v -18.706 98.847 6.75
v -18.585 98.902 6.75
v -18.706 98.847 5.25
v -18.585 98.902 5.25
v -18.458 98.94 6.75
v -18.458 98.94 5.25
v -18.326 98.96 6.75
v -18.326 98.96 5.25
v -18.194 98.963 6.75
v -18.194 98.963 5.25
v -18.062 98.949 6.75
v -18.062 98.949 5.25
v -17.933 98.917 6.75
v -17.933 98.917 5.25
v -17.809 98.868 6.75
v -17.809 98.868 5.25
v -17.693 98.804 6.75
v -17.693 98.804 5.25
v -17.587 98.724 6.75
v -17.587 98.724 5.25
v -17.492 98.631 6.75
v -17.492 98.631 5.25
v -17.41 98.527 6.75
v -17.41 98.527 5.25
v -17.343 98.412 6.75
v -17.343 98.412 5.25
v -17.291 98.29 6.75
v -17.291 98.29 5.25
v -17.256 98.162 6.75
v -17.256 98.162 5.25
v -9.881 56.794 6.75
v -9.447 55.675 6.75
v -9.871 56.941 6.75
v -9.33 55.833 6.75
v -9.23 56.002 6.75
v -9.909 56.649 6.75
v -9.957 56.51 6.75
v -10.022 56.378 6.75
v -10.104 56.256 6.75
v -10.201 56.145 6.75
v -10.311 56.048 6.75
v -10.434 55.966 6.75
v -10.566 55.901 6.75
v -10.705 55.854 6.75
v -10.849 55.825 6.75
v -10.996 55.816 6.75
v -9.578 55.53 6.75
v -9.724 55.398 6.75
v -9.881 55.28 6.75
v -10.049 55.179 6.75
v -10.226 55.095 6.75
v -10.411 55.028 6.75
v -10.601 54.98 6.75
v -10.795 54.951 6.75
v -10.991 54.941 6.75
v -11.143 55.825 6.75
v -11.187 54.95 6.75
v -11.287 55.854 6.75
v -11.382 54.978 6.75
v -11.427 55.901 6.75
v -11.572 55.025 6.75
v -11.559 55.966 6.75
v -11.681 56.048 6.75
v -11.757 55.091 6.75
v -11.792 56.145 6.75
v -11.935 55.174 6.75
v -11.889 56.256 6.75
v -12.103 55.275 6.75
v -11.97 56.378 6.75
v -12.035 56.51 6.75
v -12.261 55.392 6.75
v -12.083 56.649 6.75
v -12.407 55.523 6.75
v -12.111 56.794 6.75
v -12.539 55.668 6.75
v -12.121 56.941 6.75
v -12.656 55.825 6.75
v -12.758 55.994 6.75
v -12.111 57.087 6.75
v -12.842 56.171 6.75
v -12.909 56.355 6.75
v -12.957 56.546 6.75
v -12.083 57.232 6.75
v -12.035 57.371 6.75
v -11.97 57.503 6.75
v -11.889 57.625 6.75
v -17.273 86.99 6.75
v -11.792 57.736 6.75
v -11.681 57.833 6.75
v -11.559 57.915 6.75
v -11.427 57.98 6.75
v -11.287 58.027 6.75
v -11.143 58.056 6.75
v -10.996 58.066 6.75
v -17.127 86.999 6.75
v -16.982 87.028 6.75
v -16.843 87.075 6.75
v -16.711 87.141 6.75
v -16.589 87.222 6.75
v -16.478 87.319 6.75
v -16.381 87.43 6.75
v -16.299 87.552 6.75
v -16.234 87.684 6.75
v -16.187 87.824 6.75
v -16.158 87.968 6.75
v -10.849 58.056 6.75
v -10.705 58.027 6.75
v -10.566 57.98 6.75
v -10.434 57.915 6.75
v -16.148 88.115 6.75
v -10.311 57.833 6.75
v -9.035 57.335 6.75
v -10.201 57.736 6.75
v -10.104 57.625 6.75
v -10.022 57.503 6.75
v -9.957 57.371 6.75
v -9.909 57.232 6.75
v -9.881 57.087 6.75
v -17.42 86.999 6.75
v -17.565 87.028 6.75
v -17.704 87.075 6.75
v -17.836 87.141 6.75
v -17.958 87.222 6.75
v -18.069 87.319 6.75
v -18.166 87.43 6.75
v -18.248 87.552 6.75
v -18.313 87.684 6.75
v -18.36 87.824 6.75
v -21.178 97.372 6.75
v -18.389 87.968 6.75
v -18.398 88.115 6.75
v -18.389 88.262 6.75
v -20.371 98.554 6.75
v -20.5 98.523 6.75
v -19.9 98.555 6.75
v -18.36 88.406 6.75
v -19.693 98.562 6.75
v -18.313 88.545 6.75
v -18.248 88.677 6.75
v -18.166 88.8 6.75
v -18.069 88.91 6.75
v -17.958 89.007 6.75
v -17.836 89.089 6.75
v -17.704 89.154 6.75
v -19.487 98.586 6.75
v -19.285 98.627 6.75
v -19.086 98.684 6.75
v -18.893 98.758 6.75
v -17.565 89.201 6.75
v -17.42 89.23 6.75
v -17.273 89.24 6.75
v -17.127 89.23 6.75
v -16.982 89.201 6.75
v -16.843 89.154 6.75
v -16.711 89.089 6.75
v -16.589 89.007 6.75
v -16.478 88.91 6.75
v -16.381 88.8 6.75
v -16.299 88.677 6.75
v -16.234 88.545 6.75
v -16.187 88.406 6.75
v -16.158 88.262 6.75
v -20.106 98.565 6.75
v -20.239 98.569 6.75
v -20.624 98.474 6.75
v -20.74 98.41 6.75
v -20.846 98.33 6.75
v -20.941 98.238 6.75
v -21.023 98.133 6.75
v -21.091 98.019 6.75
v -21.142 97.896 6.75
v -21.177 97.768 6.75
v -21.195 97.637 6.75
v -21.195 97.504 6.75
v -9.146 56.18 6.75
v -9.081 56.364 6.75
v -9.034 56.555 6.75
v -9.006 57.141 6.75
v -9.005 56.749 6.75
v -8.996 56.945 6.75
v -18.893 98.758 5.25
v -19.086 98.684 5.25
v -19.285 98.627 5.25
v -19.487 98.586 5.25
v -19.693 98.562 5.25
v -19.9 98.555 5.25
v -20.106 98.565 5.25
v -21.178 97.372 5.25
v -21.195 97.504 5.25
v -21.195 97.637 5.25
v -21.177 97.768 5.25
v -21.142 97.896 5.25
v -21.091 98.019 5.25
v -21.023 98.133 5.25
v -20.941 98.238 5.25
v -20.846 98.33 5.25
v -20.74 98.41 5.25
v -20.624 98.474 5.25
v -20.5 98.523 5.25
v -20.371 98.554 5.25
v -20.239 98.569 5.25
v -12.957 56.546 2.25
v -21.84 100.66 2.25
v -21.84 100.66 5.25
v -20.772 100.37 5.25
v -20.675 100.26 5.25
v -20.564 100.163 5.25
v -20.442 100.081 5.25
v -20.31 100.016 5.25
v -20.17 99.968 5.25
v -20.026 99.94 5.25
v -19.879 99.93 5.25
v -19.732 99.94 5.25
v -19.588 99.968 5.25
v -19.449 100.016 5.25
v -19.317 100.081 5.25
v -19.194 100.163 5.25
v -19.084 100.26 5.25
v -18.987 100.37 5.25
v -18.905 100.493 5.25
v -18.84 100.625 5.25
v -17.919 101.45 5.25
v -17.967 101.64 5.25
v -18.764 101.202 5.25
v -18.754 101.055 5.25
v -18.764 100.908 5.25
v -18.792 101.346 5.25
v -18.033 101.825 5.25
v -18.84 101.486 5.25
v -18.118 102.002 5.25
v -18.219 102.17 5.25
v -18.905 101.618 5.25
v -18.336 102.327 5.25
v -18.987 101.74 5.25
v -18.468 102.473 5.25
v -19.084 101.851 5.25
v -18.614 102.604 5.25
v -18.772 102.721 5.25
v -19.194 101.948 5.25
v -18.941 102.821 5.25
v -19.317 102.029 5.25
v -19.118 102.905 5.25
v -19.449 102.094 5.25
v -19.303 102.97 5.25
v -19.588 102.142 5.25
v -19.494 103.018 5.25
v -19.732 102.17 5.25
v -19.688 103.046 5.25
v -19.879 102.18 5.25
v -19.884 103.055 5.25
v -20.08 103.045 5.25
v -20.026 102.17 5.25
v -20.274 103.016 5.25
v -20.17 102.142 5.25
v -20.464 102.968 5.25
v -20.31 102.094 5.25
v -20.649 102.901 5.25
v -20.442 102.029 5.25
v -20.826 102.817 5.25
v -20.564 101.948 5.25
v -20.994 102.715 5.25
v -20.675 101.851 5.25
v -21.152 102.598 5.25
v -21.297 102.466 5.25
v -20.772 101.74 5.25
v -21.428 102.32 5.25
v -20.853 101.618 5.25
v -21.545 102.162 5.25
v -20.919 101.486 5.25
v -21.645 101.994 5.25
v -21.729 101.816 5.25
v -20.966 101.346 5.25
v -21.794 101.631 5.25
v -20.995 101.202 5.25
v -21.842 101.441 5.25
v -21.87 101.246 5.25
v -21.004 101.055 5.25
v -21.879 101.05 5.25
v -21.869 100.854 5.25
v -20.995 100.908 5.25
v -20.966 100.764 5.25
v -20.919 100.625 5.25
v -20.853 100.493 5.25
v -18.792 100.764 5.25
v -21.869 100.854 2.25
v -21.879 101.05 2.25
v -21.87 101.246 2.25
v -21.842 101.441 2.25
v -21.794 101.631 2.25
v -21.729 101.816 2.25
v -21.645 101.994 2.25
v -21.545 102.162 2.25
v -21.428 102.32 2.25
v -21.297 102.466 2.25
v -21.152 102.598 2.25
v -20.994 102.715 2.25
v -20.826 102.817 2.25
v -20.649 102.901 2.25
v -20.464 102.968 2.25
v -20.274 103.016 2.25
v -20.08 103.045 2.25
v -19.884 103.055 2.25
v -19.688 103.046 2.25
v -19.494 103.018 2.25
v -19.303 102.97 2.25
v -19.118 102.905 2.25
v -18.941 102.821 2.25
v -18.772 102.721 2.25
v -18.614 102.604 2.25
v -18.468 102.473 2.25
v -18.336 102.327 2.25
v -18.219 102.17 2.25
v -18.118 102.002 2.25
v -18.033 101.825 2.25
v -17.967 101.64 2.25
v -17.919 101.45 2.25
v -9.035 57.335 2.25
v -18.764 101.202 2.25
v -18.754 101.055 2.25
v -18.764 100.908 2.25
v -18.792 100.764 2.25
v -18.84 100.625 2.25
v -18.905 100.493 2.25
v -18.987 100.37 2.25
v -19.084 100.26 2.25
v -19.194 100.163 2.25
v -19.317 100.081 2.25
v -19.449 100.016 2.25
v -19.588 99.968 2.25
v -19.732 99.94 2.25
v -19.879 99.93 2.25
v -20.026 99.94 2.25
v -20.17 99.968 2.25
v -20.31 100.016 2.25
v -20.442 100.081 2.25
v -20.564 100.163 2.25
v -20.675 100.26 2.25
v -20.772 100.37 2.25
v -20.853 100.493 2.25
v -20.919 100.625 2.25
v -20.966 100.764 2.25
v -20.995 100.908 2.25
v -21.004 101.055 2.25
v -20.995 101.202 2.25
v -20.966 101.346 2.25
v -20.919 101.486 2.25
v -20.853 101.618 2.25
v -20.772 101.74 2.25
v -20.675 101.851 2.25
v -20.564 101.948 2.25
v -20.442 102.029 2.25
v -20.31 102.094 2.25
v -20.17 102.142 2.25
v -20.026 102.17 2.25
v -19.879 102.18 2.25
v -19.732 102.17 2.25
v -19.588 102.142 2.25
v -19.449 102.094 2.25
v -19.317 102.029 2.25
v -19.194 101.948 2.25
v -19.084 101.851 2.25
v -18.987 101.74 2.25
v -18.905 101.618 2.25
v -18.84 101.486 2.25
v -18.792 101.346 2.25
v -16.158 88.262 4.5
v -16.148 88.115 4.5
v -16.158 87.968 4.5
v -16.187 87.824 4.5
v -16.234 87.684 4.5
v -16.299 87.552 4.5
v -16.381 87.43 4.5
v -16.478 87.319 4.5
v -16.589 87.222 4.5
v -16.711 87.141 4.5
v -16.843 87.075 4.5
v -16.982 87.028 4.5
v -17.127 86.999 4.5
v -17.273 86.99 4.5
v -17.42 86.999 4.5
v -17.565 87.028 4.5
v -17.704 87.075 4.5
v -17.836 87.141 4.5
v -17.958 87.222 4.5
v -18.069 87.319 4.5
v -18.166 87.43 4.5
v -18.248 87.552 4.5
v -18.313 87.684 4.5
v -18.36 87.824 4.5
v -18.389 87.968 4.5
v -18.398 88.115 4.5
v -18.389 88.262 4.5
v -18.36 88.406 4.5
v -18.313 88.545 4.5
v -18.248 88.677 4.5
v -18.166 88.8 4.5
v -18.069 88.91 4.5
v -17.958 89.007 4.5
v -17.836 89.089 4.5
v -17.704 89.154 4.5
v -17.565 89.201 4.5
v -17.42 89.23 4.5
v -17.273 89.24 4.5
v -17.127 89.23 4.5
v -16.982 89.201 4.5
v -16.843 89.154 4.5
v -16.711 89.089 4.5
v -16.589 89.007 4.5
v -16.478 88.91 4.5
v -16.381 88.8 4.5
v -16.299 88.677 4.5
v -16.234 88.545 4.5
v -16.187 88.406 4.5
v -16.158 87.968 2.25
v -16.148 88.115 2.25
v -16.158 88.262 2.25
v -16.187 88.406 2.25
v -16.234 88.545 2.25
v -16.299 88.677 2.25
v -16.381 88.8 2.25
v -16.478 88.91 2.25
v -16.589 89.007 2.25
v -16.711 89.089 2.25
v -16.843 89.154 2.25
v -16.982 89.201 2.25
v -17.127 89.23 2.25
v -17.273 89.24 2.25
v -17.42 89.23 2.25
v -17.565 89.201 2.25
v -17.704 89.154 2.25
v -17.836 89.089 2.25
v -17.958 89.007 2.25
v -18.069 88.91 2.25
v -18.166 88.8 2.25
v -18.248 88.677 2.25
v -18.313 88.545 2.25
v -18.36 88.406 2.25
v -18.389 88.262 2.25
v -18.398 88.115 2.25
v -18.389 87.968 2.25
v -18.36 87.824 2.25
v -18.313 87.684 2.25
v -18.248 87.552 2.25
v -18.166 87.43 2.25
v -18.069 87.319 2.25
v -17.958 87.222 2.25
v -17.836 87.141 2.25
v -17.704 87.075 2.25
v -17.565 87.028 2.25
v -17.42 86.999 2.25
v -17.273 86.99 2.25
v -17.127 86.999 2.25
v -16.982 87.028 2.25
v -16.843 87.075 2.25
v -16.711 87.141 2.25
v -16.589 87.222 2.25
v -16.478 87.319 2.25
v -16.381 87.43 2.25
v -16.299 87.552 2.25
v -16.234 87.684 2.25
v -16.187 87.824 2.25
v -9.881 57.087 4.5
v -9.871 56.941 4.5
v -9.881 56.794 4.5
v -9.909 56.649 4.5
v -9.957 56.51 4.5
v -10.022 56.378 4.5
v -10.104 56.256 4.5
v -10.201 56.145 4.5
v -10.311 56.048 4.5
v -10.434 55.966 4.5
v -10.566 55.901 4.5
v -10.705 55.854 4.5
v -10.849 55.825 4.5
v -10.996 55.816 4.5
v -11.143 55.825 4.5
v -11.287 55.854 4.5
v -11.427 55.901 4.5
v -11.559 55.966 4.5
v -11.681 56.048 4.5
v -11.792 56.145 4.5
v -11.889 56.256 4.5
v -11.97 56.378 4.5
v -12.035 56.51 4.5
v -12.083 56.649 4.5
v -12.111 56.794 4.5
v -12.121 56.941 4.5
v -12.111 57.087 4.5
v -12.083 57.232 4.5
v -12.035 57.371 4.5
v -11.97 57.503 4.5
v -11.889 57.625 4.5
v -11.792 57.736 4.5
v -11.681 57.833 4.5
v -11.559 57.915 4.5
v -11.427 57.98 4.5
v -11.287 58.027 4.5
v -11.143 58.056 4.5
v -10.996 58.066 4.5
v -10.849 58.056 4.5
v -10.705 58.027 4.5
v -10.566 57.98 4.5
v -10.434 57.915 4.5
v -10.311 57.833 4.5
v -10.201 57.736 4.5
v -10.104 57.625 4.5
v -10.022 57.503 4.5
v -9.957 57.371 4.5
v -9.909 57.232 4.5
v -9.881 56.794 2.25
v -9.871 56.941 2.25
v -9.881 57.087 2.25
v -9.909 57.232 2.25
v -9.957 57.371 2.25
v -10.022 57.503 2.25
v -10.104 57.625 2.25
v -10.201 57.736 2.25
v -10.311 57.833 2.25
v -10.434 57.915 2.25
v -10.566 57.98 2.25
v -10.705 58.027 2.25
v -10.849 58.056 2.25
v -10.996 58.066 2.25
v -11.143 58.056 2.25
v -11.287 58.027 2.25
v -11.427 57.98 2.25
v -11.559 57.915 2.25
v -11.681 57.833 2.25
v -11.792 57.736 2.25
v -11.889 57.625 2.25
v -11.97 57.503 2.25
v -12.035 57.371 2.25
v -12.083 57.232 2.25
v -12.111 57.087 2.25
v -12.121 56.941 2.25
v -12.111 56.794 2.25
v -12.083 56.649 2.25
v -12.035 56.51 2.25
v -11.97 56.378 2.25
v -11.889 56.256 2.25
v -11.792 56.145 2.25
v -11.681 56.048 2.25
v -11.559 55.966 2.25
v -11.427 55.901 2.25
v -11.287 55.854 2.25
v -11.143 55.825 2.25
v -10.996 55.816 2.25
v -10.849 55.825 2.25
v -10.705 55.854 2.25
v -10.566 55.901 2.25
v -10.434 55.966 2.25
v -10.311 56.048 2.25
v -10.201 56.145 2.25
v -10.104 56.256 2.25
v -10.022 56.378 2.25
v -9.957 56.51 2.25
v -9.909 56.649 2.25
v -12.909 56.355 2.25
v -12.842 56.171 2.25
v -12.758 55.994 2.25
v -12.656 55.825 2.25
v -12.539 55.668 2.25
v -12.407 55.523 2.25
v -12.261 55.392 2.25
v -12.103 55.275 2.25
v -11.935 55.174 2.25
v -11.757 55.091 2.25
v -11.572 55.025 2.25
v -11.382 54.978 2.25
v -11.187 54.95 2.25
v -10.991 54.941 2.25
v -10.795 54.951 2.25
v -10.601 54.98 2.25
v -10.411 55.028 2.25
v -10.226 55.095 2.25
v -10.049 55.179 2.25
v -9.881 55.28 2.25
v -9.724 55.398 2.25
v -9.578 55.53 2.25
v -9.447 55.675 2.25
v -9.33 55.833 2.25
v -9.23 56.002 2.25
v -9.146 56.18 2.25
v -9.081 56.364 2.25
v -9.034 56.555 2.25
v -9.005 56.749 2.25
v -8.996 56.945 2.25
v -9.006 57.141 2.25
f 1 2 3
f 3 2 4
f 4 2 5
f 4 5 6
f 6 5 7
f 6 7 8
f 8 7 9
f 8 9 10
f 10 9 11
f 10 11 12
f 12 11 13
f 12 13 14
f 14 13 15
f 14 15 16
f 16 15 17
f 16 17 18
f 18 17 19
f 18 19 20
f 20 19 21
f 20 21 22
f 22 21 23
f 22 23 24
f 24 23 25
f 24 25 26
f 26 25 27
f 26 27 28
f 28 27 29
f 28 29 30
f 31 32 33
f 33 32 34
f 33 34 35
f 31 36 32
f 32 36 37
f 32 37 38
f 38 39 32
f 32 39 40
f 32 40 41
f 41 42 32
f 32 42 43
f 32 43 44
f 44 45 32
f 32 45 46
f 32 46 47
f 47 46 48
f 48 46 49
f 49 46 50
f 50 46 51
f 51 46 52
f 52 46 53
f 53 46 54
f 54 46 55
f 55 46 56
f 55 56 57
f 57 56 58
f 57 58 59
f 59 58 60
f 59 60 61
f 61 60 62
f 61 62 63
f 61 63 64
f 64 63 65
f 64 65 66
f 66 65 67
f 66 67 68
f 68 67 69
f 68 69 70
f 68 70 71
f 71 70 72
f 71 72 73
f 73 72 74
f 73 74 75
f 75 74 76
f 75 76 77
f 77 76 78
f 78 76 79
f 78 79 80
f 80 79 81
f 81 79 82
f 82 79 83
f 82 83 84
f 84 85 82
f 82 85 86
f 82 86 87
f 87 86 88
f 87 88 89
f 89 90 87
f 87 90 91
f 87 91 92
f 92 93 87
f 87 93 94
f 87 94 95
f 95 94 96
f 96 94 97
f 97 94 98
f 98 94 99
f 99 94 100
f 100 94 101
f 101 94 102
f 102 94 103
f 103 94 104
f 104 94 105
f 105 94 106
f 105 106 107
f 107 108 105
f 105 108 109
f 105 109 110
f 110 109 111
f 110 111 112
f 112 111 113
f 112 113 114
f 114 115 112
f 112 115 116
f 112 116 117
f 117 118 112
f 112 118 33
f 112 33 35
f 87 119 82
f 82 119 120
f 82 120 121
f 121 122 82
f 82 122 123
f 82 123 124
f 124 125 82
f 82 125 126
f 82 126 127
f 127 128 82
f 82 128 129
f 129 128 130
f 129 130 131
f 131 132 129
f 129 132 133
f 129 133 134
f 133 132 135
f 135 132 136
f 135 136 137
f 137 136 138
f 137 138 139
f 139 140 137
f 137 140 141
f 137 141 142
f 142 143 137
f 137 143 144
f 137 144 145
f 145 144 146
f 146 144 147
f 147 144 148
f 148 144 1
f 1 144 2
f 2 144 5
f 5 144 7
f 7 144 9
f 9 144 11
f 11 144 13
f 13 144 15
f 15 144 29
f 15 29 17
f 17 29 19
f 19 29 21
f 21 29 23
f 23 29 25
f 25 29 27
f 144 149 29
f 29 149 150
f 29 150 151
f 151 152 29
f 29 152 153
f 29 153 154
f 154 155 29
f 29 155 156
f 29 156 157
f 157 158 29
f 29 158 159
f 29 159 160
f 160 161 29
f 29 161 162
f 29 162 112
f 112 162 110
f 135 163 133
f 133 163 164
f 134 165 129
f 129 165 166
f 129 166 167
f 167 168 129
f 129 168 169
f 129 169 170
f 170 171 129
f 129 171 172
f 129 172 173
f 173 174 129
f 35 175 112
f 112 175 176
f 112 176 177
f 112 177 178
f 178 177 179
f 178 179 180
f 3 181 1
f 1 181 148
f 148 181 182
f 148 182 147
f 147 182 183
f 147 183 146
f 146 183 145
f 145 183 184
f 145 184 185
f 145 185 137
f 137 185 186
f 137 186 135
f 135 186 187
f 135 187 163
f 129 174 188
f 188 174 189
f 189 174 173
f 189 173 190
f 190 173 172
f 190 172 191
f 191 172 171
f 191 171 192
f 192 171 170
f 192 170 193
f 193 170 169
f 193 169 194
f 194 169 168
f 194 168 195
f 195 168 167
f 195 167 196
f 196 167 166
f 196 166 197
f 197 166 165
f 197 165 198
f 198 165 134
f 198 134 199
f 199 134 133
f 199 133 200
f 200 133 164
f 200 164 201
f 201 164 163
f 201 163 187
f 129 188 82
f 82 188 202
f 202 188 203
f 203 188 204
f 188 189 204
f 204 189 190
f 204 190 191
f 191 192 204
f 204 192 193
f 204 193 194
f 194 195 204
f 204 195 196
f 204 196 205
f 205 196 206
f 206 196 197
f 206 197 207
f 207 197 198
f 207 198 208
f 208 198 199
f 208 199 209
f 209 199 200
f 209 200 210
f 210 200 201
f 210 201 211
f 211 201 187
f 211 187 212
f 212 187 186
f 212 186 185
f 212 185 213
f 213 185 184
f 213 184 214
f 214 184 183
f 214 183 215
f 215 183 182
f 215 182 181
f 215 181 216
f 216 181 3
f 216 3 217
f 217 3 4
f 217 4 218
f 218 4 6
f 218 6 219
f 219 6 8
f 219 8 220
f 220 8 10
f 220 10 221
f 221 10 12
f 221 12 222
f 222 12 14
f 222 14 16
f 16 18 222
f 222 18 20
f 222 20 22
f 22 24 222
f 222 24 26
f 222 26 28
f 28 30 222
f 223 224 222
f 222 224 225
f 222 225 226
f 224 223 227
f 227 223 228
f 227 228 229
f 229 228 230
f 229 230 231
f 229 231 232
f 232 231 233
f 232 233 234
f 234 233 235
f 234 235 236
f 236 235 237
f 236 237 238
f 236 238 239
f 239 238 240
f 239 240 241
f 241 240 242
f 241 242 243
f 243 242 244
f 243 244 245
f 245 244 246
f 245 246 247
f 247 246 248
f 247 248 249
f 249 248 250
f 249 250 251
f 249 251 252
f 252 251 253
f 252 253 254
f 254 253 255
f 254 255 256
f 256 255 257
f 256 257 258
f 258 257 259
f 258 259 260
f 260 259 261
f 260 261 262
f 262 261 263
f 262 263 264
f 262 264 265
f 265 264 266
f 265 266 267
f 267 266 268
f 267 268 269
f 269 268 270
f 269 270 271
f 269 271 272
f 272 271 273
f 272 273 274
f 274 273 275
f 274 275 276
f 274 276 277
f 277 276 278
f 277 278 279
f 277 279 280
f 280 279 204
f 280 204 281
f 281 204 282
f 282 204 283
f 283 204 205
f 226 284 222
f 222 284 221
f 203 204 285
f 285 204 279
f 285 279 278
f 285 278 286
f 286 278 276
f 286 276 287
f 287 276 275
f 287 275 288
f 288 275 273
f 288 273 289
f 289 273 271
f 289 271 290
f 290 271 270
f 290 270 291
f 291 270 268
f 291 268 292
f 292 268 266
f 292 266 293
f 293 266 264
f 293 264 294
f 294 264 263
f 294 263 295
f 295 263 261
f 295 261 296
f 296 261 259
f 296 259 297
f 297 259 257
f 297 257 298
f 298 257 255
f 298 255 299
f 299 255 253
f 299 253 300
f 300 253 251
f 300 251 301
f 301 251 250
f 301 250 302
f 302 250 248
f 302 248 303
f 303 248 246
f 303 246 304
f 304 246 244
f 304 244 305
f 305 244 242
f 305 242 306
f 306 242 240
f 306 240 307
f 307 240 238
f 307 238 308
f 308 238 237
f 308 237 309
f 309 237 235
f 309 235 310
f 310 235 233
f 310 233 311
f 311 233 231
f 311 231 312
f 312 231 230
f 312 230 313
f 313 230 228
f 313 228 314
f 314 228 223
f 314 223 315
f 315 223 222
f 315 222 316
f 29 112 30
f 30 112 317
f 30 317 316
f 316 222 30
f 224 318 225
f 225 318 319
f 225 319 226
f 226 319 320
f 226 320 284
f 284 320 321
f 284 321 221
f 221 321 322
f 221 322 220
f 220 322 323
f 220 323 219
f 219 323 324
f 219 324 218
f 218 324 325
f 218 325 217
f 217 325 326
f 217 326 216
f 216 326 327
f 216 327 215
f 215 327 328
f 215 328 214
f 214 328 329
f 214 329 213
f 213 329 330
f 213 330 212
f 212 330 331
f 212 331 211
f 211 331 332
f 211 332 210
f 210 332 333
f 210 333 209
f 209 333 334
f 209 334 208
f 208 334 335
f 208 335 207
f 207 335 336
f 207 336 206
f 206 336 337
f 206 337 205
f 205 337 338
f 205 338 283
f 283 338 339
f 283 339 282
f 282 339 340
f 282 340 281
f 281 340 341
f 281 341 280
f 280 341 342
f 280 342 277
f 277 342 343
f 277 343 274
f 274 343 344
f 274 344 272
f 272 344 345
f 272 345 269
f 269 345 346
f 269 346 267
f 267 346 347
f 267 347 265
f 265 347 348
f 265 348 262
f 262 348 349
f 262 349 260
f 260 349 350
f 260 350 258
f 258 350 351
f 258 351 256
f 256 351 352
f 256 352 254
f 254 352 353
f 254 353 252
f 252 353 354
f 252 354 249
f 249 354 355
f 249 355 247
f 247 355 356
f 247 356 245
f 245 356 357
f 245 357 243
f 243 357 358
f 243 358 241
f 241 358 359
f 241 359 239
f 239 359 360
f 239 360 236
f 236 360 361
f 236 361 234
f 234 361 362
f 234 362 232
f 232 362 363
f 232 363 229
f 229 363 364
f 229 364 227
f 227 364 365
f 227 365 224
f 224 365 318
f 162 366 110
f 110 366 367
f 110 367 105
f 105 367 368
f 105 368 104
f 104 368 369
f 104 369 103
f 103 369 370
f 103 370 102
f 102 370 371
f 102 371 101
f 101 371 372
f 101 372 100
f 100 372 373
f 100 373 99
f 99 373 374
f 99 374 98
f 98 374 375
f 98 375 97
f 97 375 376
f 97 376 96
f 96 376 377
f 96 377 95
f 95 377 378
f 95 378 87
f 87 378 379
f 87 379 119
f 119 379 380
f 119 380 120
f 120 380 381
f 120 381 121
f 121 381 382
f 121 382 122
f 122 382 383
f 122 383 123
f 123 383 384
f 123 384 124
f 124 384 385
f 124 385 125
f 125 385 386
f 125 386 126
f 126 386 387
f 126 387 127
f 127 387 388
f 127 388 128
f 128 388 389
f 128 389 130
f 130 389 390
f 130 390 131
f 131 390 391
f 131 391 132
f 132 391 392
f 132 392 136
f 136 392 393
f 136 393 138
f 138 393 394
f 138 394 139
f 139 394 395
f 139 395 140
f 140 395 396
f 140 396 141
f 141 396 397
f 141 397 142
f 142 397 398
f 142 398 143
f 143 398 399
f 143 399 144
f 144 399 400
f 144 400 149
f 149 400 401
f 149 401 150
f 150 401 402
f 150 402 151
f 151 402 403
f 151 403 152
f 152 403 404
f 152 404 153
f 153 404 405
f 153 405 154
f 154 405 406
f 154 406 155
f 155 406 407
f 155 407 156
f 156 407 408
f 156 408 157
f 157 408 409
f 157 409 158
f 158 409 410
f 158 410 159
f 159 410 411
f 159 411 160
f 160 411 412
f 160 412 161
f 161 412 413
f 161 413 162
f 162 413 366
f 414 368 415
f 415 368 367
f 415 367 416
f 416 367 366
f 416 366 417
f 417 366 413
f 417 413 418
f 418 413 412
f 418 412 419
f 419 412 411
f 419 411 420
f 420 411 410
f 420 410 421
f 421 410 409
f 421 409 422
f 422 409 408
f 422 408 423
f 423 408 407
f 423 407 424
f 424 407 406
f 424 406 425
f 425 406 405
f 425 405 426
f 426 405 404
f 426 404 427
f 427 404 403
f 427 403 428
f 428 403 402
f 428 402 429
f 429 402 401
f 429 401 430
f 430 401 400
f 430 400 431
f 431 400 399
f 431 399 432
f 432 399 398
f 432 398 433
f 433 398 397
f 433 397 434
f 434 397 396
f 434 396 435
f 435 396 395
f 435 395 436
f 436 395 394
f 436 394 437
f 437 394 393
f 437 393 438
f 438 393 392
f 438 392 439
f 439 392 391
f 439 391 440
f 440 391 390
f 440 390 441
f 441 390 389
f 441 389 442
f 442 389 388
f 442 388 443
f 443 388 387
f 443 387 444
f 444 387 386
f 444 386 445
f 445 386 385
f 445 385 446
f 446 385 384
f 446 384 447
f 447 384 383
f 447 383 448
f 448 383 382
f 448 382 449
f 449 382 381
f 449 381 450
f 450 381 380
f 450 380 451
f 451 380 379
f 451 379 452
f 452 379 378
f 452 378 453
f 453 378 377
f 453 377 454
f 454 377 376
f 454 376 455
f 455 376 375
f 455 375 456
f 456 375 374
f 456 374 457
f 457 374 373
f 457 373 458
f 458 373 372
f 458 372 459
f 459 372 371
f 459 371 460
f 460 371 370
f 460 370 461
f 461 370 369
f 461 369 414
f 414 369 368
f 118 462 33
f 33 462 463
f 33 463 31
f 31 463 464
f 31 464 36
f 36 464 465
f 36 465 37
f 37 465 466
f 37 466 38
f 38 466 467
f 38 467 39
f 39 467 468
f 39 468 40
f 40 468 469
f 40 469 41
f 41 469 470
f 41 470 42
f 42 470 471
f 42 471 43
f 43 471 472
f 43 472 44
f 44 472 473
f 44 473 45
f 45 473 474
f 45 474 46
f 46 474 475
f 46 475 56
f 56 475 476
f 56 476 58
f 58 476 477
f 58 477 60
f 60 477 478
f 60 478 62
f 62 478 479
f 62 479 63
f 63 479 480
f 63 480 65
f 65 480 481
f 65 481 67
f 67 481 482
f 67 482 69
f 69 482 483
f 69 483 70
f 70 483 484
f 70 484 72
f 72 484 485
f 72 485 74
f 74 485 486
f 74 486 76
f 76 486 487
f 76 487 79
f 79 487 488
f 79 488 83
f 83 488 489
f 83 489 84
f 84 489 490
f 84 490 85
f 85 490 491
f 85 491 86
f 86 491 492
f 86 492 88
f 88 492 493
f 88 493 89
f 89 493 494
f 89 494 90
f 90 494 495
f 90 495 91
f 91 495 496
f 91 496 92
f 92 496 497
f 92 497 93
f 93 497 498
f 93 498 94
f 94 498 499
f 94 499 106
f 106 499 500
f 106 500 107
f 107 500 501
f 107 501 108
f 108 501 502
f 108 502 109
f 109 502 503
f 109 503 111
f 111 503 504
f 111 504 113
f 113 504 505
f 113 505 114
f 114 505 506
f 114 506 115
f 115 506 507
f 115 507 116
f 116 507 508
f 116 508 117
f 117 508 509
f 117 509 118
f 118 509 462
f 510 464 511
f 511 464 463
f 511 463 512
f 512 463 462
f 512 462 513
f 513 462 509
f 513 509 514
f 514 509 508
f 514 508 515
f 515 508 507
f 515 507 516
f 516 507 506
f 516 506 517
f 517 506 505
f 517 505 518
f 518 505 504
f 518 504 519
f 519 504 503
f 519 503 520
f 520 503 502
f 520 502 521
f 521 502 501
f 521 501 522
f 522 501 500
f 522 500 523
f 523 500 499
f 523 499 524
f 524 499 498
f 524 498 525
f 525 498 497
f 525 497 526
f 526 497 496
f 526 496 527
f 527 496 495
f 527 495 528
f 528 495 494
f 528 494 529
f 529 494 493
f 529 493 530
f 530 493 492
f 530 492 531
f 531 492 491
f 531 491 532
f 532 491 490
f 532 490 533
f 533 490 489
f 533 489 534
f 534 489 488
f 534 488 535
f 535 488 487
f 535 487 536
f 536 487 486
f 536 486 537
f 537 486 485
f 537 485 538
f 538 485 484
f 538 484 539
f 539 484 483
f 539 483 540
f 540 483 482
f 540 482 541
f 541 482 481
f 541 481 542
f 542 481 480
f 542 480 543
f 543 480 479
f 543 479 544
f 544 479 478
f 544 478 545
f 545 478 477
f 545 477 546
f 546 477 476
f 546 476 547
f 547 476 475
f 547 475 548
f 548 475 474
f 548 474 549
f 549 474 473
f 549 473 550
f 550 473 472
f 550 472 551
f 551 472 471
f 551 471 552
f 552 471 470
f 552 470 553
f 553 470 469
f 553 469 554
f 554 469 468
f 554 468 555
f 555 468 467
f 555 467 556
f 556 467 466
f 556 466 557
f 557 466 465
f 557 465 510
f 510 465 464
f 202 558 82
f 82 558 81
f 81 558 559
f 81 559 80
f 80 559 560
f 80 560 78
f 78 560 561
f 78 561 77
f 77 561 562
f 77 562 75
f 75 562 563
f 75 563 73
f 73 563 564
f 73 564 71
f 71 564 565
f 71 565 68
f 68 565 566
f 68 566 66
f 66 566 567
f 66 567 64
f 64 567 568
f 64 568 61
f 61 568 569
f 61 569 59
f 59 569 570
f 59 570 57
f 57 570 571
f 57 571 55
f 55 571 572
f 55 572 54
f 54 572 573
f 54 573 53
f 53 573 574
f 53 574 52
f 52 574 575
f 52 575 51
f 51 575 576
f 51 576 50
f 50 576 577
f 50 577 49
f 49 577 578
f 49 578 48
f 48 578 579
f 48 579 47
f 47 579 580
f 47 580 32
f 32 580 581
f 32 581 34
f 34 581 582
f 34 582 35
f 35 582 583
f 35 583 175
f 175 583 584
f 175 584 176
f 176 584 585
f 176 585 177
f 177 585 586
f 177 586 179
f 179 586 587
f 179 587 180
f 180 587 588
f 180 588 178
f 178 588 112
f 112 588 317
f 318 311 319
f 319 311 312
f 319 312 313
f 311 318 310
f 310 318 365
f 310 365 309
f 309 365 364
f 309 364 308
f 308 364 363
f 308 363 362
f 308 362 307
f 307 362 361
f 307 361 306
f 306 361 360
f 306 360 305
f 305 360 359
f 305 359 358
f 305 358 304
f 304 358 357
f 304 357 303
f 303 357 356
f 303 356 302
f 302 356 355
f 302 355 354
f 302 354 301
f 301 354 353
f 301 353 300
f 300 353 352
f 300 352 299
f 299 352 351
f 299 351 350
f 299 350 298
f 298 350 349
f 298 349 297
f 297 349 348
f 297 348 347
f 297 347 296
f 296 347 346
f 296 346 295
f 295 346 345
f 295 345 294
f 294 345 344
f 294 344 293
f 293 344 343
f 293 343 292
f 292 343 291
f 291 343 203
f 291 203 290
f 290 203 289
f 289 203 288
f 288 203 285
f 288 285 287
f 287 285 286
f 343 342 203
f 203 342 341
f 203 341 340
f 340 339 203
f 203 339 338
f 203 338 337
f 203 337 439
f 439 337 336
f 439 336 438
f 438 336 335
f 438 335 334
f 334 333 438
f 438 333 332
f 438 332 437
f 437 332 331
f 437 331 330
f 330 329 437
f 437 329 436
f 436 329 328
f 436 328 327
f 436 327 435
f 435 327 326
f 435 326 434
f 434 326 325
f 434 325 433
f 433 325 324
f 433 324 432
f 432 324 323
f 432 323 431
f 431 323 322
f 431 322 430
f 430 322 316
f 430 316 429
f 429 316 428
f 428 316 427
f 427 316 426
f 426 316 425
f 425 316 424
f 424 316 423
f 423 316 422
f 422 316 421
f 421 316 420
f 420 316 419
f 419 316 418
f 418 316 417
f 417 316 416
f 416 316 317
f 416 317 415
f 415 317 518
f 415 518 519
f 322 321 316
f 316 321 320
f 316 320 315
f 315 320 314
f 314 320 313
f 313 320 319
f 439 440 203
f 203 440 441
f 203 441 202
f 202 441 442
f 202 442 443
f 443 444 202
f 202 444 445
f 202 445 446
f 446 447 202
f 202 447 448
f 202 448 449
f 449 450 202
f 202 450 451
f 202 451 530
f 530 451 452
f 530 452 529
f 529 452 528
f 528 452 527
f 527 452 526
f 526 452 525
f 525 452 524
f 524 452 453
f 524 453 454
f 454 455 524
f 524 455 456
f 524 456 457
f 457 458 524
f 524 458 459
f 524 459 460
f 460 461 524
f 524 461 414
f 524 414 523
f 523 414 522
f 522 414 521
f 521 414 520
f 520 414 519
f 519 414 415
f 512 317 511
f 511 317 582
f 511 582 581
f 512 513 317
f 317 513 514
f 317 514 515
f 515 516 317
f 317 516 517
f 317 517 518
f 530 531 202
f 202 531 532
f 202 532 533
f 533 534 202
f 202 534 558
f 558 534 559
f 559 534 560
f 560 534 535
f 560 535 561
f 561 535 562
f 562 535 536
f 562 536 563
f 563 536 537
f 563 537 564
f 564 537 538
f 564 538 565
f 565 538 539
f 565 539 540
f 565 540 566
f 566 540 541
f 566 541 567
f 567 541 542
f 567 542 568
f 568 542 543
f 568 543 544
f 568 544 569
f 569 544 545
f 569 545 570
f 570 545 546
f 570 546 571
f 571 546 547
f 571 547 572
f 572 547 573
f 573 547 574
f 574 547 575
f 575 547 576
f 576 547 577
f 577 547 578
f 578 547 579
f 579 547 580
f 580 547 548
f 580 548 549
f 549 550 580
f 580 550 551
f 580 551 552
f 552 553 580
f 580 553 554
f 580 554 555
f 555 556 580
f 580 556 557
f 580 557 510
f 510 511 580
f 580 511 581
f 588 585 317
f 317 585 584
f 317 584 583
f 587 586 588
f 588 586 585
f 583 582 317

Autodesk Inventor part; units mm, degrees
ref_plane "YZ Plane" through (0, 0, 0) normal (1, 0, 0) x (0, 1, 0)
ref_plane "XZ Plane" through (0, 0, 0) normal (0, 1, 0) x (-1, 0, 0)
ref_plane "XY Plane" through (0, 0, 0) normal (0, 0, 1) x (1, 0, 0)
sketch "Sketch1" plane through (0, 0, 0) normal (0, 0, 1) x (1, 0, 0)
  circle A0 centre (-4.5939, 35.2781) radius 2.25 projected
  circle A1 centre (-17.1487, 97.6266) radius 2.25 projected
  circle A2 centre (-22.3601, 123.5071) radius 2.25 projected
  line L0 (-4.5939, 35.2781) -> (-22.3601, 123.5071) construction
  line L1 (-0.6726, 36.0677) -> (-18.4388, 124.2967)
  line L2 (-26.2814, 122.7175) -> (-8.5151, 34.4885)
  arc A3 (-8.5151, 34.4885) -> (-0.6726, 36.0677) centre (-4.5939, 35.2781) ccw
  arc A4 (-18.4388, 124.2967) -> (-26.2814, 122.7175) centre (-22.3601, 123.5071) ccw
  point P0 (0, 0)
  point P1 (-13.477, 79.3926)
  dimension "d0" = 8
extrude "Extrusion1" add sketch "Sketch1" along normal blind 9
sketch "Sketch2" plane through (0, 0, 9) normal (0, 0, 1) x (1, 0, 0)
  circle A0 centre (-22.3601, 123.5071) radius 2.25 projected
  circle A1 centre (-22.3601, 123.5071) radius 5
  point P0 (0, 0)
  dimension "d3" = 10
extrude "Extrusion2" cut sketch "Sketch2" against normal blind 3
fillet "Fillet1" radius 2 2 edges at (-25.6892, 119.7766, 7.5) (-17.8466, 121.3558, 7.5)
scale "Scale1" factors (0.5, 0.5, 0.5) then translate (-8.6991, 39.3015, 2.25) bodies 1
properties part number "MasiveBone1"
